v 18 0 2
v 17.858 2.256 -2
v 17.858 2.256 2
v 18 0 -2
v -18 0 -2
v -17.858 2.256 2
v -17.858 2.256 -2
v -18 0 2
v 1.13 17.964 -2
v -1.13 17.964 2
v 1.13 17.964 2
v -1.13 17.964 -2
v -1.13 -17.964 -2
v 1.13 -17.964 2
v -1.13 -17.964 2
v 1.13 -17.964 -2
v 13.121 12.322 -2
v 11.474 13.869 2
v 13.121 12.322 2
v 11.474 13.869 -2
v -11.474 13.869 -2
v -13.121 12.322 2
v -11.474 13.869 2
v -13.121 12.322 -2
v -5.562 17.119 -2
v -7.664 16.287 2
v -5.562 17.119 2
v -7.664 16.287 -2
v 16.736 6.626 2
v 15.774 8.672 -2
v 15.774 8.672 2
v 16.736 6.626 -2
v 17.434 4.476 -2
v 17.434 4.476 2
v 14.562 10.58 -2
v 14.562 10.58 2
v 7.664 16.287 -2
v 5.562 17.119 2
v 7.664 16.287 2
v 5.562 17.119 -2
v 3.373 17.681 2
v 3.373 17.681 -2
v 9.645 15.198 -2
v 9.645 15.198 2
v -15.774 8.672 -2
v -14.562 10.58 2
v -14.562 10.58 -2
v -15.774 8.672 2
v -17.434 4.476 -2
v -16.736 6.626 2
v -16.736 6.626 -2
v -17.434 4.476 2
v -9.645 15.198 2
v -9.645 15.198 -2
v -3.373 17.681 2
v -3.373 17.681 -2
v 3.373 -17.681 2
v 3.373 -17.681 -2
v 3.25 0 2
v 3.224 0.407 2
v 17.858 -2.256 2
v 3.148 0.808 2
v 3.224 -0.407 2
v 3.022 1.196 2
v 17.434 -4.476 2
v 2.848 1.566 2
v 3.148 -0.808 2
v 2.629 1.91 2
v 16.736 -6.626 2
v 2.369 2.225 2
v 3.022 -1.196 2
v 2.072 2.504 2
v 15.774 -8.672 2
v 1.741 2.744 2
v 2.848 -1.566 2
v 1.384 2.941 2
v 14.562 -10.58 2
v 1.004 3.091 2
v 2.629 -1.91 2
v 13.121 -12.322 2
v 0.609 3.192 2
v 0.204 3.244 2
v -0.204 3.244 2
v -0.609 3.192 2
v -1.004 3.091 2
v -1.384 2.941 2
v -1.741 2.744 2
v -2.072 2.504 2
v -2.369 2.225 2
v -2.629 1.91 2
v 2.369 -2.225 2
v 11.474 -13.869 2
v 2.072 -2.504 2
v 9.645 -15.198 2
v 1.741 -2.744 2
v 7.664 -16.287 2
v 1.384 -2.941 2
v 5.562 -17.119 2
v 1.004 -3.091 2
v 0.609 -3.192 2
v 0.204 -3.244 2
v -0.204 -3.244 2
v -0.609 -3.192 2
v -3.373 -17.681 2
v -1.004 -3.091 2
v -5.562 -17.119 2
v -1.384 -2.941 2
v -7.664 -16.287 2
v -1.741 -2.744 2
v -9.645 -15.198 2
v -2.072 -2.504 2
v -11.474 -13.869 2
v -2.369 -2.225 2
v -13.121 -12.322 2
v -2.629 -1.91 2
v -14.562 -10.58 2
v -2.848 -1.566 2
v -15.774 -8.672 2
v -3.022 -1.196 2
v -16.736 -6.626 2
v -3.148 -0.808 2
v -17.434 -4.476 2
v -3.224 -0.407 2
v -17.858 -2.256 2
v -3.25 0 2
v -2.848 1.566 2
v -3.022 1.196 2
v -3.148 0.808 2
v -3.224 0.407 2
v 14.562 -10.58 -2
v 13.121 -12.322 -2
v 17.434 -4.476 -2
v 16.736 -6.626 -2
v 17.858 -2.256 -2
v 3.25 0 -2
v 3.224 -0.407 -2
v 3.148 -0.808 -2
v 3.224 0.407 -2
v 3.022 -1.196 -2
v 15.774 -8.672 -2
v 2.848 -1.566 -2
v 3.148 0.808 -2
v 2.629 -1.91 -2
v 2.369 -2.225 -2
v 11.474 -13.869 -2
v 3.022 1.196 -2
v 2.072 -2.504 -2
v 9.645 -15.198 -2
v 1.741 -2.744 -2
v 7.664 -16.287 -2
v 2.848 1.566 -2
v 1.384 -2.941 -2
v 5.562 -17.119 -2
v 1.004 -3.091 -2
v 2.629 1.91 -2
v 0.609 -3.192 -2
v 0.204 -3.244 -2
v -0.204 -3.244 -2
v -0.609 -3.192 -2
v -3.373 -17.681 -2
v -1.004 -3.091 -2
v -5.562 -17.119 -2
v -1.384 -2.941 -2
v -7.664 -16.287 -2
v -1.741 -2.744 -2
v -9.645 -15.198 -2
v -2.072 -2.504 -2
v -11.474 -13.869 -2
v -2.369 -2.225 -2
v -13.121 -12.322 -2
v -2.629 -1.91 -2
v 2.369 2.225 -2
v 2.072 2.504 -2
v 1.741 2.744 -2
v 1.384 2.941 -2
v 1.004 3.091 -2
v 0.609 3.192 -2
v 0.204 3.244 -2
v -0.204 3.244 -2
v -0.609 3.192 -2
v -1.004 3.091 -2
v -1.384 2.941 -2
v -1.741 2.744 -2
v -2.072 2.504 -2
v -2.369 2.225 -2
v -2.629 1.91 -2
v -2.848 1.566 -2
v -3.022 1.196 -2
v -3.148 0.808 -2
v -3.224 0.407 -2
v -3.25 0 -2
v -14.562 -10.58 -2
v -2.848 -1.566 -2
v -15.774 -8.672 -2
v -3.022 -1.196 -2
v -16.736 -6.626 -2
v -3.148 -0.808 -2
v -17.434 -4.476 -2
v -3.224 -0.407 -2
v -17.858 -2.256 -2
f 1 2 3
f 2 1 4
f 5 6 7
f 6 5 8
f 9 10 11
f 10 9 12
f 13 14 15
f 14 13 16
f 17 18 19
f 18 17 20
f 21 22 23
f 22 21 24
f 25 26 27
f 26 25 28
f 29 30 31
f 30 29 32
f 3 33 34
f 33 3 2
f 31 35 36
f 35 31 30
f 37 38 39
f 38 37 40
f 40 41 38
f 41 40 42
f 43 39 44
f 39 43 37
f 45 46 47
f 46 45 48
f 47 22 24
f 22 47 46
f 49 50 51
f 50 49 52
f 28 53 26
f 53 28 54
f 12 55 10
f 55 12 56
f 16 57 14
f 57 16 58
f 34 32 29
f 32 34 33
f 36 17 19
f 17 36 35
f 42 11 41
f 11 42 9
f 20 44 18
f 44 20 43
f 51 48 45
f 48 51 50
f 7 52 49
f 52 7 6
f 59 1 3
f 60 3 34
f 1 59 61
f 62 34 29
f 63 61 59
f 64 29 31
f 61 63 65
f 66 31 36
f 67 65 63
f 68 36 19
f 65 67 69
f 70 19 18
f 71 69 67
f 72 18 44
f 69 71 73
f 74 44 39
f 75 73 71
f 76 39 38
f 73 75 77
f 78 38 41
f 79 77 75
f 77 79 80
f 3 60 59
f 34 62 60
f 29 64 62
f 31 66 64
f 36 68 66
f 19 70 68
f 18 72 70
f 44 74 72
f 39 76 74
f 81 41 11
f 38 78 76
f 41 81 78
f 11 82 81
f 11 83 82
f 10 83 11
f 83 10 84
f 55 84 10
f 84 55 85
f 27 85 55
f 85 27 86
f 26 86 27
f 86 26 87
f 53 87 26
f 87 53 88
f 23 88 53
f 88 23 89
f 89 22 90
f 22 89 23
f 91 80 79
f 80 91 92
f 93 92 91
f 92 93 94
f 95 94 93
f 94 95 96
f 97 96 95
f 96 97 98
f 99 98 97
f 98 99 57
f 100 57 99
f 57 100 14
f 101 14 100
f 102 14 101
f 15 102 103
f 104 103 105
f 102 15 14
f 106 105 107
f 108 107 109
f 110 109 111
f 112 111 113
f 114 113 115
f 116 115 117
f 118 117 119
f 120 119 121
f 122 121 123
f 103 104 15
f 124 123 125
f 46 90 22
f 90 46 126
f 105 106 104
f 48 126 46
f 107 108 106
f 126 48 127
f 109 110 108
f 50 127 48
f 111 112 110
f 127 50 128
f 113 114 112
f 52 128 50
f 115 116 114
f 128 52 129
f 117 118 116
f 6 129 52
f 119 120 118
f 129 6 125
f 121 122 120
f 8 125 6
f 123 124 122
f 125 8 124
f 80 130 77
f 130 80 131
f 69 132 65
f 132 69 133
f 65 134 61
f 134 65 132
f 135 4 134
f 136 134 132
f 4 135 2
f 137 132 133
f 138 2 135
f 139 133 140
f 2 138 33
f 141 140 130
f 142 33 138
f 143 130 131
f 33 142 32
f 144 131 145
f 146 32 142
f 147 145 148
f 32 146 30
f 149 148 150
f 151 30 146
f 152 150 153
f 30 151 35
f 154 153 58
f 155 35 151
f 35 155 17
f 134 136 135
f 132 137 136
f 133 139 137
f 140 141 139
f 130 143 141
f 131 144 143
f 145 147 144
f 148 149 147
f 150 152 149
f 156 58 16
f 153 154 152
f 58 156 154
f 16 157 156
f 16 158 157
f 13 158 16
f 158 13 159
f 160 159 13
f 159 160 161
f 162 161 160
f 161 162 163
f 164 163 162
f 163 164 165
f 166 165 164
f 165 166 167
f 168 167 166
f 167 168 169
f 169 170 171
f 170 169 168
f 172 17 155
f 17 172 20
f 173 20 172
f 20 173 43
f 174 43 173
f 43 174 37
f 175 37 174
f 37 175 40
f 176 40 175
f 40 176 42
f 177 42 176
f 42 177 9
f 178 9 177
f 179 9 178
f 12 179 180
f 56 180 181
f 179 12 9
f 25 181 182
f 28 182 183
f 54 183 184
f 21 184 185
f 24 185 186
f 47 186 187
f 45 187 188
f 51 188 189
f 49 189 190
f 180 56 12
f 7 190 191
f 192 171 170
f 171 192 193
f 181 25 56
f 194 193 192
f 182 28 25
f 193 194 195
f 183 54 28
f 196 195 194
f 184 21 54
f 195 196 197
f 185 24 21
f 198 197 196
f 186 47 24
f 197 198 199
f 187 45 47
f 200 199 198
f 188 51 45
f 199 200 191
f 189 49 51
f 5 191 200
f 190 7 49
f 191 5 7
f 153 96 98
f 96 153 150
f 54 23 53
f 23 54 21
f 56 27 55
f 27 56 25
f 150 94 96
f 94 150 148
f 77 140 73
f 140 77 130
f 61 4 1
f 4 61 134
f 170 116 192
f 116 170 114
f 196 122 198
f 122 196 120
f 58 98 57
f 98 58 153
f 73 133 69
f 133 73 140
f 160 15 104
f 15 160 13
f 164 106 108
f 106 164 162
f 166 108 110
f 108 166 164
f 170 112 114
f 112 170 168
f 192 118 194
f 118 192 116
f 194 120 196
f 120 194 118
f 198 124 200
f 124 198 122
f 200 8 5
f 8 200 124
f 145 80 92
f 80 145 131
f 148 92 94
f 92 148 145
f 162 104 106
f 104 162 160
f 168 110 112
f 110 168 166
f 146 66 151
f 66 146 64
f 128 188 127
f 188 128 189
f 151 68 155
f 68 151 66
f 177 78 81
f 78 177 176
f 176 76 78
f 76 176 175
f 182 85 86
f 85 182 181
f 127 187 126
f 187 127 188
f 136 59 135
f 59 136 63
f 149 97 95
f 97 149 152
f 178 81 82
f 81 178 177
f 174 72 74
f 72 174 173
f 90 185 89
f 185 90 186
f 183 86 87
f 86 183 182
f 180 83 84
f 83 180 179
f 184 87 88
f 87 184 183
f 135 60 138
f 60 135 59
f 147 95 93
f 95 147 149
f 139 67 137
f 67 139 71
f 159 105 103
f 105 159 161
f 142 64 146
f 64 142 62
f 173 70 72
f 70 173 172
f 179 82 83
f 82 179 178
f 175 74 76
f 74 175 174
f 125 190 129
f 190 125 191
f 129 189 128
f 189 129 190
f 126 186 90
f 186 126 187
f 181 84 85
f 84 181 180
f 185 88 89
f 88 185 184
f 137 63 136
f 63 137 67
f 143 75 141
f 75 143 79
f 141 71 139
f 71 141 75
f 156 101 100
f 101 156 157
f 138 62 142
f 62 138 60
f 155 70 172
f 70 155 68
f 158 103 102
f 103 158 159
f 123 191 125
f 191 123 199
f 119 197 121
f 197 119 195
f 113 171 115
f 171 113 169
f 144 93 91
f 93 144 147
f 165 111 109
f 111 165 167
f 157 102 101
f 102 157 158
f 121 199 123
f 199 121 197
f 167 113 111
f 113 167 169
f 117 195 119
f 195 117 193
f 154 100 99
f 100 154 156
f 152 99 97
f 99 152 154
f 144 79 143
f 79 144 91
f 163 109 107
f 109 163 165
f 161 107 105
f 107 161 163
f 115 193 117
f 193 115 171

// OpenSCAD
$fn = 50;


difference() {
	union() {
		translate(v = [0, 0, -2.0000000000]) {
			cylinder(h = 4, r = 18.0000000000);
		}
	}
	union() {
		translate(v = [0, 0, -100.0000000000]) {
			cylinder(h = 200, r = 3.2500000000);
		}
	}
}
